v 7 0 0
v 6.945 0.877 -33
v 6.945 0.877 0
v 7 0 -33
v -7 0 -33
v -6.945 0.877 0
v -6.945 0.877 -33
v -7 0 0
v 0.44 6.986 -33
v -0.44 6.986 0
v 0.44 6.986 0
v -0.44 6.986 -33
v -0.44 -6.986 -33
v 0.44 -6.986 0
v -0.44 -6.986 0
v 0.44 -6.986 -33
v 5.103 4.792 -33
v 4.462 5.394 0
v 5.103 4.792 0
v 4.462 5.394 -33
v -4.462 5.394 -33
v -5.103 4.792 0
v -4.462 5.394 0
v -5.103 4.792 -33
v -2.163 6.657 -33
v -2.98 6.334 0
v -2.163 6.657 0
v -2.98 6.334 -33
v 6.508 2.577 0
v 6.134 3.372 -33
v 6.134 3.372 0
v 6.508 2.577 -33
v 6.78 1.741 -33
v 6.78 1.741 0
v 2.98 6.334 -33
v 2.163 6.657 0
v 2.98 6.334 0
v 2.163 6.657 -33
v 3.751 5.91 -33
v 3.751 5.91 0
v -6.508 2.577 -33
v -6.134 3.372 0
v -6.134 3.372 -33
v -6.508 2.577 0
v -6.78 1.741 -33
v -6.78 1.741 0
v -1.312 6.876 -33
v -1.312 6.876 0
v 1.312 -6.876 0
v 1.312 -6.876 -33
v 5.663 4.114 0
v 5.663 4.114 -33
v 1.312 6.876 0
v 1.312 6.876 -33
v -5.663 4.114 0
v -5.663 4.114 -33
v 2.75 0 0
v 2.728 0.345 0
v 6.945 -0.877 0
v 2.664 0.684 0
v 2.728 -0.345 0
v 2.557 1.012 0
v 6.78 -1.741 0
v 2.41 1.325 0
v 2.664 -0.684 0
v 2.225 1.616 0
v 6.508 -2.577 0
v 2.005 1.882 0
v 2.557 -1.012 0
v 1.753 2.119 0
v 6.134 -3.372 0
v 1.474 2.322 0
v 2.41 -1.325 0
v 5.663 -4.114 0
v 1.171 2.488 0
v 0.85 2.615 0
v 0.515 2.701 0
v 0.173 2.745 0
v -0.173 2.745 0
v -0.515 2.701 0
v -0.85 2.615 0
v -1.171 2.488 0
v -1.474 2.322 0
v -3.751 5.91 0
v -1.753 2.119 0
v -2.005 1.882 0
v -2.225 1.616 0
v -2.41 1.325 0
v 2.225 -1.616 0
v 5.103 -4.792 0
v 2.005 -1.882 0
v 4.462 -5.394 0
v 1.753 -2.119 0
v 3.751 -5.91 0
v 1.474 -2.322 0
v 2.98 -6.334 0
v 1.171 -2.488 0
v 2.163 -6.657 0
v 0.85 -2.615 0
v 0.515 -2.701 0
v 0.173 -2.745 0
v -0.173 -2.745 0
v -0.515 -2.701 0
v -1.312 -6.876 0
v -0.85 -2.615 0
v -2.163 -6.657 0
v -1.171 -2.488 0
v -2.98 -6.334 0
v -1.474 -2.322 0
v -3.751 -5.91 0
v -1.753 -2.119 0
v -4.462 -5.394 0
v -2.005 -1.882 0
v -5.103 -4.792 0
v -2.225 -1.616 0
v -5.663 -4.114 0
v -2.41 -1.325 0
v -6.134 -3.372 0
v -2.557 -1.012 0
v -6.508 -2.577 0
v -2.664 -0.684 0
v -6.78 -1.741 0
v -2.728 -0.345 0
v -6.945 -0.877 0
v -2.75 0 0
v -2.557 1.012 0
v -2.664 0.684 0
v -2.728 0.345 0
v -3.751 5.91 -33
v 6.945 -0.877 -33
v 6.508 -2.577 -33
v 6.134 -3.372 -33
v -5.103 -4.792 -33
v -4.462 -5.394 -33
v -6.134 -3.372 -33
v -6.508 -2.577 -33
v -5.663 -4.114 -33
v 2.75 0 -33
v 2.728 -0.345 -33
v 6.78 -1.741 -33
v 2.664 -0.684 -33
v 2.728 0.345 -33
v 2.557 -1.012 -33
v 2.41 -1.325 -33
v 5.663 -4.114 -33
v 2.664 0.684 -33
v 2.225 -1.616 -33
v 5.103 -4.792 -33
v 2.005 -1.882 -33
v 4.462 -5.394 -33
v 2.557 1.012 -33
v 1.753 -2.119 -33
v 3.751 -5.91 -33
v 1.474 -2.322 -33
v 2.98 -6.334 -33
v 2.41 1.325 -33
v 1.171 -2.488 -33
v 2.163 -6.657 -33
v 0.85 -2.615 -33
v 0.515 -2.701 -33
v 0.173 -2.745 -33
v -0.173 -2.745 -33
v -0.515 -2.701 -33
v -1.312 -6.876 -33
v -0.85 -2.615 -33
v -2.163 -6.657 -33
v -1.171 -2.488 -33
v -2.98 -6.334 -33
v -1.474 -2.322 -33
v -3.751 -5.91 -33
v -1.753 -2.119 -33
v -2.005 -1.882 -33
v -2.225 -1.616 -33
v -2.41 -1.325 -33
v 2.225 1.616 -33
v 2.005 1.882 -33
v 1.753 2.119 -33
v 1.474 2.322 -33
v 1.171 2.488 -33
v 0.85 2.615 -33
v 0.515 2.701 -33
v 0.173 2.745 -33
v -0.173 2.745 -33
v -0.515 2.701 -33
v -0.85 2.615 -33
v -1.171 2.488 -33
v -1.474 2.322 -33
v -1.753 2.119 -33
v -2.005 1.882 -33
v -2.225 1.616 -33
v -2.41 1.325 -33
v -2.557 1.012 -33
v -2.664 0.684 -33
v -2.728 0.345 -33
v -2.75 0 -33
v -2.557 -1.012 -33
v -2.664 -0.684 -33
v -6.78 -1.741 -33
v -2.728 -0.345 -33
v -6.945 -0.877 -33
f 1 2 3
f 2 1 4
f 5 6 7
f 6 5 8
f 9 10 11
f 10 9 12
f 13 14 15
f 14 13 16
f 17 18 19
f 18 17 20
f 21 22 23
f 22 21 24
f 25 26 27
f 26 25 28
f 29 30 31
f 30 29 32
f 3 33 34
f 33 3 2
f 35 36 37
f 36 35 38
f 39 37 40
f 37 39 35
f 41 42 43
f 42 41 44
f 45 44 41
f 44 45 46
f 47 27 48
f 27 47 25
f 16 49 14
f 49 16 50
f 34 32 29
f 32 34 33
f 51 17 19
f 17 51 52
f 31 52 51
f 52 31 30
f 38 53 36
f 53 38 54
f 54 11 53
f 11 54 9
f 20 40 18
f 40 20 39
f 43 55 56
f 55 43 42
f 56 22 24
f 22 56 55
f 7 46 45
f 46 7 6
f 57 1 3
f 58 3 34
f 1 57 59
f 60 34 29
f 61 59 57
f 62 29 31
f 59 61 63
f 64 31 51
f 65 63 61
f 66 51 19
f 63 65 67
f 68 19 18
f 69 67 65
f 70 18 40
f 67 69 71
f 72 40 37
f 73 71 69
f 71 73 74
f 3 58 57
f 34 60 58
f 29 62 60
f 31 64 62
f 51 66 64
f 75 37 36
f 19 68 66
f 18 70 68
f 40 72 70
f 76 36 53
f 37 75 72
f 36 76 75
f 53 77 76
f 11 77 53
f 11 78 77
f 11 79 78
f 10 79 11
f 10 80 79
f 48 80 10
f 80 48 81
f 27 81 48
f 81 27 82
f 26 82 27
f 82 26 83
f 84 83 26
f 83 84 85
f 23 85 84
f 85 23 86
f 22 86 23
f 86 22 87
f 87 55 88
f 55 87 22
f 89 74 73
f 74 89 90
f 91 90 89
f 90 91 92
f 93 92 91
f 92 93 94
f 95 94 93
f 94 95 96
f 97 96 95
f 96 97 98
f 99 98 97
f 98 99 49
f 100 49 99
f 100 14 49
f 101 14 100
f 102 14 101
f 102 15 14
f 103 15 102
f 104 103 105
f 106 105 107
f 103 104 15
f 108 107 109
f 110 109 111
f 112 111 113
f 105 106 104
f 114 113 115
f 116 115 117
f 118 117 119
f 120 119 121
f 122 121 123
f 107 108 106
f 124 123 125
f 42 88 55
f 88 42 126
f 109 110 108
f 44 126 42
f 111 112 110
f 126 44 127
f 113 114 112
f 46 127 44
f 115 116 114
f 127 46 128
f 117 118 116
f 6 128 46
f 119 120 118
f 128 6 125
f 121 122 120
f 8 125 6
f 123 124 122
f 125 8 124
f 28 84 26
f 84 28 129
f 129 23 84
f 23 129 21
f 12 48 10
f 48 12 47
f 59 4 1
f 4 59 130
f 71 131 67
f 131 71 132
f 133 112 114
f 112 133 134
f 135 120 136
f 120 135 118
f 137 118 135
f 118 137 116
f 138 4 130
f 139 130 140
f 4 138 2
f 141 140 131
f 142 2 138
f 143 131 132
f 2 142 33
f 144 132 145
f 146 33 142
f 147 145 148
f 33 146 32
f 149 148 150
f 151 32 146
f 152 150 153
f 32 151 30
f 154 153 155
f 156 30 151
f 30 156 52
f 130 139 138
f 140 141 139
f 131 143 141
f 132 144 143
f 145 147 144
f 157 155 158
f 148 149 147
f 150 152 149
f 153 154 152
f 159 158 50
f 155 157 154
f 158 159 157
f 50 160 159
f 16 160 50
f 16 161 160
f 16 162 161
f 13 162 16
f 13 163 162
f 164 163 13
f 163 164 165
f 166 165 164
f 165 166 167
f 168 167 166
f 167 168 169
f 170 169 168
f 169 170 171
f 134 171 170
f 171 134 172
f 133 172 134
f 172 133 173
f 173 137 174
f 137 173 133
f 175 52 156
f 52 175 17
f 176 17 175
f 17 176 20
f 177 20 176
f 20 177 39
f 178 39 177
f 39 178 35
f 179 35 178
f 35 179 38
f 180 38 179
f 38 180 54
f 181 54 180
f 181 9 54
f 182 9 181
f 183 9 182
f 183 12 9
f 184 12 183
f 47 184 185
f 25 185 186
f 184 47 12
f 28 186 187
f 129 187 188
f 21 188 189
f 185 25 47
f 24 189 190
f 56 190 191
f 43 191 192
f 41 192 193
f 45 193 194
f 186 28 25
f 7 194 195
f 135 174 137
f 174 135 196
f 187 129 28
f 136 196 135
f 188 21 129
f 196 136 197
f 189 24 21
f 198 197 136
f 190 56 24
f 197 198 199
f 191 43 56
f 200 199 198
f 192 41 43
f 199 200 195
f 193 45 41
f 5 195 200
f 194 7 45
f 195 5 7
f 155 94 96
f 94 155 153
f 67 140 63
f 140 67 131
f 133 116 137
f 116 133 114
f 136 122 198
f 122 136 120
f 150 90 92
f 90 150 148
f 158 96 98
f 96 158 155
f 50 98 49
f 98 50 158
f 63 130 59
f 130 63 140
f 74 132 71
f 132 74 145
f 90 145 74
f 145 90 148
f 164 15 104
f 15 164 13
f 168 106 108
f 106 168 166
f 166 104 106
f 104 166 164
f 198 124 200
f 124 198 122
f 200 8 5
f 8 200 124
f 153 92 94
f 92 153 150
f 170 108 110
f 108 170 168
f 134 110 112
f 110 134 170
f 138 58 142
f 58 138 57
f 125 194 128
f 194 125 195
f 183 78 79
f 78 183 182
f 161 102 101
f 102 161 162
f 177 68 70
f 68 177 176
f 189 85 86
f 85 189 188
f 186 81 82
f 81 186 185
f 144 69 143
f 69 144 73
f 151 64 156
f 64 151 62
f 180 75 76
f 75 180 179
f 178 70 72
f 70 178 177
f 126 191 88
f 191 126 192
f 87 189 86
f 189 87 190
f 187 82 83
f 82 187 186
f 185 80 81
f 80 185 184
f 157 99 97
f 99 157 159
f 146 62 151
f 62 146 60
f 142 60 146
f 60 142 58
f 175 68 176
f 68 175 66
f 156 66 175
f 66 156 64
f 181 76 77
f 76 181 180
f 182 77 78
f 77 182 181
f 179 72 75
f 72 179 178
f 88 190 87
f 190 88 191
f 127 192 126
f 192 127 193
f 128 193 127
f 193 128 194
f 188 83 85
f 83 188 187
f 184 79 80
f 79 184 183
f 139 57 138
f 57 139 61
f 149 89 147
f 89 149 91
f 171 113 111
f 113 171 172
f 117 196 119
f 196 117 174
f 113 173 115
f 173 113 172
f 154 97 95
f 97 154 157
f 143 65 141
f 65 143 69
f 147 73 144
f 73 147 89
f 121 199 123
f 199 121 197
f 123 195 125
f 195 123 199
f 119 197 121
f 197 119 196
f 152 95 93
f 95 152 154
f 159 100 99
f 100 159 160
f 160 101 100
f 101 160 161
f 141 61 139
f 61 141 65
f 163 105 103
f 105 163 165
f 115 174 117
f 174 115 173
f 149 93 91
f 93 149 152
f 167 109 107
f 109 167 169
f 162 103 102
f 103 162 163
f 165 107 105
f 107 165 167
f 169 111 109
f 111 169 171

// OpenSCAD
$fn = 50;


difference() {
	union() {
		translate(v = [0, 0, -33.0000000000]) {
			cylinder(h = 33, r = 7.0000000000);
		}
		cylinder(h = 0, r = 16.0000000000);
	}
	union() {
		#translate(v = [0, 0, -33]) {
			cylinder(h = 33, r = 2.7500000000);
		}
	}
}
